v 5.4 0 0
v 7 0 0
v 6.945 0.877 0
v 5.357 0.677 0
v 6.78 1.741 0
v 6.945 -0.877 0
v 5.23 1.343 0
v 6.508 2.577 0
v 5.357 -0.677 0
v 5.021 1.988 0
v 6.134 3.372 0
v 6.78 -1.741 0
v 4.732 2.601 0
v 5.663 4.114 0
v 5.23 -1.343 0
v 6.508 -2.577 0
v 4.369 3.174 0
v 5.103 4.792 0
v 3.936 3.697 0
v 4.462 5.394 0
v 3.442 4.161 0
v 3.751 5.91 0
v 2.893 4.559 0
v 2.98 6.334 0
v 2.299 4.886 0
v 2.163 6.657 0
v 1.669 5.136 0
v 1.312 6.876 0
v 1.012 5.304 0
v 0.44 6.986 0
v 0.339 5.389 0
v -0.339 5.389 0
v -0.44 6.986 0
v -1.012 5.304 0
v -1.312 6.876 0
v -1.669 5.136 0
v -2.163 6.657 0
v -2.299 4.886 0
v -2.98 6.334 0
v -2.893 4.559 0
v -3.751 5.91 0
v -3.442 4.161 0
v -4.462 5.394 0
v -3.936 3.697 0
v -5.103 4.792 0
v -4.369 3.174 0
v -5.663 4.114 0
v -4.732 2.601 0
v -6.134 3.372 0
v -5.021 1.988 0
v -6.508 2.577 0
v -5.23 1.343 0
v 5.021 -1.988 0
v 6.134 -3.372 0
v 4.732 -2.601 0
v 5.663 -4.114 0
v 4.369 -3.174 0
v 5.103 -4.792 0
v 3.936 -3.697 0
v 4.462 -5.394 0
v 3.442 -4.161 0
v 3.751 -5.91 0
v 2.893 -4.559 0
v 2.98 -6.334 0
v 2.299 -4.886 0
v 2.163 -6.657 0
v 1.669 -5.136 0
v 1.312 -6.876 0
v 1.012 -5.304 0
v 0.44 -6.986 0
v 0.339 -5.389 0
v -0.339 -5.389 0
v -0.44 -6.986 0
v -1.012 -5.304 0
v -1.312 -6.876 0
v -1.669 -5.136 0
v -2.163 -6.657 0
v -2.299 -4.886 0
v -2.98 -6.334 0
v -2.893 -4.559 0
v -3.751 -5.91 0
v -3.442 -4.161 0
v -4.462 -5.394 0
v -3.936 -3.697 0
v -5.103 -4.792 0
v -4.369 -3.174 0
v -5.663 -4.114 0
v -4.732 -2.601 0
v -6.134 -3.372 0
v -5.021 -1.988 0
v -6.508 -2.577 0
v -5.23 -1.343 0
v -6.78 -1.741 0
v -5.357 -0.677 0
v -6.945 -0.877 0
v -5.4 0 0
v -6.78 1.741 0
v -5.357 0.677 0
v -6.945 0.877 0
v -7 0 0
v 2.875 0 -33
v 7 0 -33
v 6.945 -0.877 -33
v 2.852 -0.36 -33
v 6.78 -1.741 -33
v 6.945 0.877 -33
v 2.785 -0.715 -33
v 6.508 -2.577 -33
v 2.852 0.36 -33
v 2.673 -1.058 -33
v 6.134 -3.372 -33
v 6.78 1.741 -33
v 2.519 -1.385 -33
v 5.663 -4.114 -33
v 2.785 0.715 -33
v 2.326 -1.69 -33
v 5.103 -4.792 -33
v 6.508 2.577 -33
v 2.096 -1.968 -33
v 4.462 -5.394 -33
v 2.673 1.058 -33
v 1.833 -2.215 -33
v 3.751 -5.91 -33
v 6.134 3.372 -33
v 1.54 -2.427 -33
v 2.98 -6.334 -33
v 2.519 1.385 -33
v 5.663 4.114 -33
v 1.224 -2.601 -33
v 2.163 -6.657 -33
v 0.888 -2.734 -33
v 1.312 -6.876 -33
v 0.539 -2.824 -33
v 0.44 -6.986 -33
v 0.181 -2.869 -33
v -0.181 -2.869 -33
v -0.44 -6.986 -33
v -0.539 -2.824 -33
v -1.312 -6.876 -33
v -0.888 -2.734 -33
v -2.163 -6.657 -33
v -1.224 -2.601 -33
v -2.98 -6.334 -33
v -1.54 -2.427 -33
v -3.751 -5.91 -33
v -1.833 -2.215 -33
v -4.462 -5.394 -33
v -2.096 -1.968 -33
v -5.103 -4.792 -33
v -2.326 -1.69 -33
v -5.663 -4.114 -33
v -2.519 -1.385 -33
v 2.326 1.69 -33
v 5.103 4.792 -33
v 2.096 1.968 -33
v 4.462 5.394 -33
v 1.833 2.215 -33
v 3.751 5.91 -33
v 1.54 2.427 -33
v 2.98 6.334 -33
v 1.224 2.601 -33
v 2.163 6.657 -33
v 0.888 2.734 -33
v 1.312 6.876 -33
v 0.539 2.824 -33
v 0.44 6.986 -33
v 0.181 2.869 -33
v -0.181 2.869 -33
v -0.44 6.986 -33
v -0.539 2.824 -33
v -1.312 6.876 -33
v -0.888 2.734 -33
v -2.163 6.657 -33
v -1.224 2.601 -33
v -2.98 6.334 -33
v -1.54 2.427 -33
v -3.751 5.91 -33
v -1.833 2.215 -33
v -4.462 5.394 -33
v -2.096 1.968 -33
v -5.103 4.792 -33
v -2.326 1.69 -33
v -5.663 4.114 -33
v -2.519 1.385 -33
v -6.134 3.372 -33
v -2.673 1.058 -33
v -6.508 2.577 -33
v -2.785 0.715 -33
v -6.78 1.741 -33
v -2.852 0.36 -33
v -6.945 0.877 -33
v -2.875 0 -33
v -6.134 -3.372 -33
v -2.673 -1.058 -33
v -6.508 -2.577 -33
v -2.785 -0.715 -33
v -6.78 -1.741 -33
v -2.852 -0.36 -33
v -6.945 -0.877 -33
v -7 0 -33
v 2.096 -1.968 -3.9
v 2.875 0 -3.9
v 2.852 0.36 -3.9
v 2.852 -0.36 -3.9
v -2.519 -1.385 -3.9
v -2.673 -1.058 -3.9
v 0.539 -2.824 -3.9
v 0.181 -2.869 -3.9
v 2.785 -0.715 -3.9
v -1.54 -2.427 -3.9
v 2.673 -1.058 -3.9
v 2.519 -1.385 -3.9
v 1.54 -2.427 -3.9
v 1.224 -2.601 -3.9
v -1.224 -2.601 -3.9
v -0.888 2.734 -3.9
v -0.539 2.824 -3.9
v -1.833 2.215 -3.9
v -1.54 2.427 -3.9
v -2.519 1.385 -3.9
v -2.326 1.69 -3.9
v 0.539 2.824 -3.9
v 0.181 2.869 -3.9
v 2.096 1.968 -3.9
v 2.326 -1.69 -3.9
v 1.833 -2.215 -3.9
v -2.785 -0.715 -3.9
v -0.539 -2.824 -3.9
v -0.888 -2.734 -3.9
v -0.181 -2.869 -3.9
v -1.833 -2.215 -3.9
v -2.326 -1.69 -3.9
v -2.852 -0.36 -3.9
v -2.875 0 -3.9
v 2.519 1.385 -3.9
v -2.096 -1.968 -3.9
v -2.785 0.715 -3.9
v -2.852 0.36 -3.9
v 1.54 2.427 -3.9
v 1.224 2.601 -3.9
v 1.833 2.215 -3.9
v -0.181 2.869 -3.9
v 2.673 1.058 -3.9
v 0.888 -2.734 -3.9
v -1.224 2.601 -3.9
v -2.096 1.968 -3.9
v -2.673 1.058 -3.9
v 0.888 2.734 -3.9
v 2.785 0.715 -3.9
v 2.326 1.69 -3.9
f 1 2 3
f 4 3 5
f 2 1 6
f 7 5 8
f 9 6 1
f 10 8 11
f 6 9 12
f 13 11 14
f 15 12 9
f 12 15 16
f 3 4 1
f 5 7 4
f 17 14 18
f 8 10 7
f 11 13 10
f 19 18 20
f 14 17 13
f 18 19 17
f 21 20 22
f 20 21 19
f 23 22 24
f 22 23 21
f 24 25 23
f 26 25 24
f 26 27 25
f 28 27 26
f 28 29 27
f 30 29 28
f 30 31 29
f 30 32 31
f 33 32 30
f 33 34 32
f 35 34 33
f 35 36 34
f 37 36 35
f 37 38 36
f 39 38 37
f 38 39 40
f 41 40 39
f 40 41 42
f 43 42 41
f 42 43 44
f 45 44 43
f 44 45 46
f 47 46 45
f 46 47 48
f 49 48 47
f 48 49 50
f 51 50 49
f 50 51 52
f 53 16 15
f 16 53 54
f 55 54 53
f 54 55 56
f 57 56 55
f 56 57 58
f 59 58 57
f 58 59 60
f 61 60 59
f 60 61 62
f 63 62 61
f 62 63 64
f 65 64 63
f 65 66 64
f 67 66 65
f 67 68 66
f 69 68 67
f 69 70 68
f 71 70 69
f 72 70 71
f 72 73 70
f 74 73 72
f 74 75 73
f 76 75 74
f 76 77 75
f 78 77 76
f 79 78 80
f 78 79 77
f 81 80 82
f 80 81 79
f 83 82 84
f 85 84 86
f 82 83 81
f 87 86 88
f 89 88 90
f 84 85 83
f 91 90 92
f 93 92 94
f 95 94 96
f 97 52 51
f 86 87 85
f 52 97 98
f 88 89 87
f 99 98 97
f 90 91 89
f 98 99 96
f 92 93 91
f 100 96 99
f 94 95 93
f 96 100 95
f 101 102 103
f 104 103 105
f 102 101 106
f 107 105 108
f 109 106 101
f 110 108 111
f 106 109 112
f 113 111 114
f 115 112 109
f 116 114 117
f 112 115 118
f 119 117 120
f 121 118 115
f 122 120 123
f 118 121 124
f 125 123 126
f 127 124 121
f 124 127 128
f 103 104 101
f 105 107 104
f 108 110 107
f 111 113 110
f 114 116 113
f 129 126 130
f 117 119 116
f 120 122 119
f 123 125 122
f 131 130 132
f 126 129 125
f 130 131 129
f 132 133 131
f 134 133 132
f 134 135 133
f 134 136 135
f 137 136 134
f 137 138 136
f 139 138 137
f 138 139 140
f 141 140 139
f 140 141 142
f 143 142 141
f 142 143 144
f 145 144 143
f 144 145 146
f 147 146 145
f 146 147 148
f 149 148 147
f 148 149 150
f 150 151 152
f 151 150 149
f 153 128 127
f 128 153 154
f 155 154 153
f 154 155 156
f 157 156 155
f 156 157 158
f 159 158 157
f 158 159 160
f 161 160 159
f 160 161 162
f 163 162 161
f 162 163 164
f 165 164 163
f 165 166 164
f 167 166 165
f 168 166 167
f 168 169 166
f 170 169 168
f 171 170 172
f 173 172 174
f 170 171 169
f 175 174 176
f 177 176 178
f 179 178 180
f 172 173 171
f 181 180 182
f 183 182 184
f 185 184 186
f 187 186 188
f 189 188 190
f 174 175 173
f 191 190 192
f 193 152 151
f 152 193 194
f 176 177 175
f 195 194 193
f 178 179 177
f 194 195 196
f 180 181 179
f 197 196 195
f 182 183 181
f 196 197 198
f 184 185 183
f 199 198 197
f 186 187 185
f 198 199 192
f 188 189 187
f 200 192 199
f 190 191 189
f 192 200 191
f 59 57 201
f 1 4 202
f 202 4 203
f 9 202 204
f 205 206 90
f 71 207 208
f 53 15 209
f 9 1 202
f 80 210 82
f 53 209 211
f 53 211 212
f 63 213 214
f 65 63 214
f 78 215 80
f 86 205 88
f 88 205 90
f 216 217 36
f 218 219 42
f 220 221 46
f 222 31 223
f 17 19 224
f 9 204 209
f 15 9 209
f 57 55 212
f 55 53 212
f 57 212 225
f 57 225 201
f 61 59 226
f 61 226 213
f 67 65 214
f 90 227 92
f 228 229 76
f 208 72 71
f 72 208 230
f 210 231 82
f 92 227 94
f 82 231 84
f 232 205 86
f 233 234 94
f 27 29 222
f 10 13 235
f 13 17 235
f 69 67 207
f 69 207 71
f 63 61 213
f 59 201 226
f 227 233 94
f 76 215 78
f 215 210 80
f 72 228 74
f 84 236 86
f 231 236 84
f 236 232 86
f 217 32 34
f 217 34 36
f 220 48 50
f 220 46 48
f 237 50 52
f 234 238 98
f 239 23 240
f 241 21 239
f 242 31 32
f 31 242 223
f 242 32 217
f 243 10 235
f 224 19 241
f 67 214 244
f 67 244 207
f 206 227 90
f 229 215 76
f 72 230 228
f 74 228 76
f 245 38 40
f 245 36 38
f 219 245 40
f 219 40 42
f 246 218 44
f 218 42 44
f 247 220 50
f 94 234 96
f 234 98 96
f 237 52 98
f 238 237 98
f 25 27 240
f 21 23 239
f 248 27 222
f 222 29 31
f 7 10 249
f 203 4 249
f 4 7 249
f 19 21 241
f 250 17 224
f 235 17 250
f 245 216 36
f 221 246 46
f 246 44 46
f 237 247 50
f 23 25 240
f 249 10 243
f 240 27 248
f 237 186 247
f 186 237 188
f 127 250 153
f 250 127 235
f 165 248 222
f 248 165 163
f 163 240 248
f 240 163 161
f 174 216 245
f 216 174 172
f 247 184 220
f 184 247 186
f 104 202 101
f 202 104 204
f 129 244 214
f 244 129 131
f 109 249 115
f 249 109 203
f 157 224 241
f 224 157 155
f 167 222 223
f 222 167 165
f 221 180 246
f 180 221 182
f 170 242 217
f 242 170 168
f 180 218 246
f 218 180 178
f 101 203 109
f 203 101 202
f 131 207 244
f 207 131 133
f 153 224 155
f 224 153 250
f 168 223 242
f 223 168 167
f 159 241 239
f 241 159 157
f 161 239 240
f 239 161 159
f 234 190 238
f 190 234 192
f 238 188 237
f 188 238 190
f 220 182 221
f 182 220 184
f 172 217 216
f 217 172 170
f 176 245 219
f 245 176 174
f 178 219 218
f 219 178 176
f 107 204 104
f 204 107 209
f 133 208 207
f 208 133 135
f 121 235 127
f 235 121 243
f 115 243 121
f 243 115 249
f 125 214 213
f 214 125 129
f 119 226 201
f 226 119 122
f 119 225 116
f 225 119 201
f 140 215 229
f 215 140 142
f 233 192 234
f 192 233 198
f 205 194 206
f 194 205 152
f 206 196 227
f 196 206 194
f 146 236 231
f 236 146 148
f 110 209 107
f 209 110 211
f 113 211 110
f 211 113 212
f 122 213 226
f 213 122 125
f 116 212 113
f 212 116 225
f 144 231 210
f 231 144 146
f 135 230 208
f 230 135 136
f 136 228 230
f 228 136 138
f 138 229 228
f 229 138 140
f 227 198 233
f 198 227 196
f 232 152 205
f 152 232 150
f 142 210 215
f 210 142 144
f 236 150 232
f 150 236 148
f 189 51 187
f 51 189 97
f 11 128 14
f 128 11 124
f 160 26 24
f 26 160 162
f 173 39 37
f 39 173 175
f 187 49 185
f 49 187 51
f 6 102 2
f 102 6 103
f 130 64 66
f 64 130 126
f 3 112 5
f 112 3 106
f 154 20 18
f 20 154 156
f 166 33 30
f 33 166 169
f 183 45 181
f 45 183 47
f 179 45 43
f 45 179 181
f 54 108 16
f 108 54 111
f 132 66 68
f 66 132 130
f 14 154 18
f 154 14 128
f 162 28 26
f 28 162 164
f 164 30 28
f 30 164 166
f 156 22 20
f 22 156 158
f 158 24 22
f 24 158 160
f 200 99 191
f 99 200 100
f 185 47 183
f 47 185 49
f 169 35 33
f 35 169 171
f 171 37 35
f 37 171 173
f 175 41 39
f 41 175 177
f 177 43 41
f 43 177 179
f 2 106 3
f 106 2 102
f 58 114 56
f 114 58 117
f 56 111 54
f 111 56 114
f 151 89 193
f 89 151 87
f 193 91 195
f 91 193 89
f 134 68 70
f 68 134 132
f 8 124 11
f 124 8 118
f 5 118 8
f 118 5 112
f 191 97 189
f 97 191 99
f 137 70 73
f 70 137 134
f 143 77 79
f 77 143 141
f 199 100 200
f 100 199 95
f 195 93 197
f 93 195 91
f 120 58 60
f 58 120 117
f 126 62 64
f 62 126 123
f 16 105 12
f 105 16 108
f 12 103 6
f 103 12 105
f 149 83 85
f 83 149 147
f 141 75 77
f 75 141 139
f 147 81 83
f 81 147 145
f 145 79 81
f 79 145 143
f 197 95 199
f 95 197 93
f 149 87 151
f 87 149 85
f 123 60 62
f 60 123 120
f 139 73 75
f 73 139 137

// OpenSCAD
$fn = 50;


difference() {
	union() {
		translate(v = [0, 0, -33.0000000000]) {
			cylinder(h = 33, r = 7.0000000000);
		}
		cylinder(h = 0, r = 10.0000000000);
	}
	union() {
		translate(v = [0, 0, 0]) {
			rotate(a = [0, 0, 0]) {
				difference() {
					union() {
						#translate(v = [0, 0, -33.0000000000]) {
							cylinder(h = 33, r = 2.6000000000);
						}
						#translate(v = [0, 0, -3.9000000000]) {
							cylinder(h = 3.9000000000, r = 7.0000000000, r1 = 2.8750000000, r2 = 5.4000000000);
						}
						#translate(v = [0, 0, -33.0000000000]) {
							cylinder(h = 33, r = 2.8750000000);
						}
						#translate(v = [0, 0, -33.0000000000]) {
							cylinder(h = 33, r = 2.6000000000);
						}
					}
					union();
				}
			}
		}
	}
}
